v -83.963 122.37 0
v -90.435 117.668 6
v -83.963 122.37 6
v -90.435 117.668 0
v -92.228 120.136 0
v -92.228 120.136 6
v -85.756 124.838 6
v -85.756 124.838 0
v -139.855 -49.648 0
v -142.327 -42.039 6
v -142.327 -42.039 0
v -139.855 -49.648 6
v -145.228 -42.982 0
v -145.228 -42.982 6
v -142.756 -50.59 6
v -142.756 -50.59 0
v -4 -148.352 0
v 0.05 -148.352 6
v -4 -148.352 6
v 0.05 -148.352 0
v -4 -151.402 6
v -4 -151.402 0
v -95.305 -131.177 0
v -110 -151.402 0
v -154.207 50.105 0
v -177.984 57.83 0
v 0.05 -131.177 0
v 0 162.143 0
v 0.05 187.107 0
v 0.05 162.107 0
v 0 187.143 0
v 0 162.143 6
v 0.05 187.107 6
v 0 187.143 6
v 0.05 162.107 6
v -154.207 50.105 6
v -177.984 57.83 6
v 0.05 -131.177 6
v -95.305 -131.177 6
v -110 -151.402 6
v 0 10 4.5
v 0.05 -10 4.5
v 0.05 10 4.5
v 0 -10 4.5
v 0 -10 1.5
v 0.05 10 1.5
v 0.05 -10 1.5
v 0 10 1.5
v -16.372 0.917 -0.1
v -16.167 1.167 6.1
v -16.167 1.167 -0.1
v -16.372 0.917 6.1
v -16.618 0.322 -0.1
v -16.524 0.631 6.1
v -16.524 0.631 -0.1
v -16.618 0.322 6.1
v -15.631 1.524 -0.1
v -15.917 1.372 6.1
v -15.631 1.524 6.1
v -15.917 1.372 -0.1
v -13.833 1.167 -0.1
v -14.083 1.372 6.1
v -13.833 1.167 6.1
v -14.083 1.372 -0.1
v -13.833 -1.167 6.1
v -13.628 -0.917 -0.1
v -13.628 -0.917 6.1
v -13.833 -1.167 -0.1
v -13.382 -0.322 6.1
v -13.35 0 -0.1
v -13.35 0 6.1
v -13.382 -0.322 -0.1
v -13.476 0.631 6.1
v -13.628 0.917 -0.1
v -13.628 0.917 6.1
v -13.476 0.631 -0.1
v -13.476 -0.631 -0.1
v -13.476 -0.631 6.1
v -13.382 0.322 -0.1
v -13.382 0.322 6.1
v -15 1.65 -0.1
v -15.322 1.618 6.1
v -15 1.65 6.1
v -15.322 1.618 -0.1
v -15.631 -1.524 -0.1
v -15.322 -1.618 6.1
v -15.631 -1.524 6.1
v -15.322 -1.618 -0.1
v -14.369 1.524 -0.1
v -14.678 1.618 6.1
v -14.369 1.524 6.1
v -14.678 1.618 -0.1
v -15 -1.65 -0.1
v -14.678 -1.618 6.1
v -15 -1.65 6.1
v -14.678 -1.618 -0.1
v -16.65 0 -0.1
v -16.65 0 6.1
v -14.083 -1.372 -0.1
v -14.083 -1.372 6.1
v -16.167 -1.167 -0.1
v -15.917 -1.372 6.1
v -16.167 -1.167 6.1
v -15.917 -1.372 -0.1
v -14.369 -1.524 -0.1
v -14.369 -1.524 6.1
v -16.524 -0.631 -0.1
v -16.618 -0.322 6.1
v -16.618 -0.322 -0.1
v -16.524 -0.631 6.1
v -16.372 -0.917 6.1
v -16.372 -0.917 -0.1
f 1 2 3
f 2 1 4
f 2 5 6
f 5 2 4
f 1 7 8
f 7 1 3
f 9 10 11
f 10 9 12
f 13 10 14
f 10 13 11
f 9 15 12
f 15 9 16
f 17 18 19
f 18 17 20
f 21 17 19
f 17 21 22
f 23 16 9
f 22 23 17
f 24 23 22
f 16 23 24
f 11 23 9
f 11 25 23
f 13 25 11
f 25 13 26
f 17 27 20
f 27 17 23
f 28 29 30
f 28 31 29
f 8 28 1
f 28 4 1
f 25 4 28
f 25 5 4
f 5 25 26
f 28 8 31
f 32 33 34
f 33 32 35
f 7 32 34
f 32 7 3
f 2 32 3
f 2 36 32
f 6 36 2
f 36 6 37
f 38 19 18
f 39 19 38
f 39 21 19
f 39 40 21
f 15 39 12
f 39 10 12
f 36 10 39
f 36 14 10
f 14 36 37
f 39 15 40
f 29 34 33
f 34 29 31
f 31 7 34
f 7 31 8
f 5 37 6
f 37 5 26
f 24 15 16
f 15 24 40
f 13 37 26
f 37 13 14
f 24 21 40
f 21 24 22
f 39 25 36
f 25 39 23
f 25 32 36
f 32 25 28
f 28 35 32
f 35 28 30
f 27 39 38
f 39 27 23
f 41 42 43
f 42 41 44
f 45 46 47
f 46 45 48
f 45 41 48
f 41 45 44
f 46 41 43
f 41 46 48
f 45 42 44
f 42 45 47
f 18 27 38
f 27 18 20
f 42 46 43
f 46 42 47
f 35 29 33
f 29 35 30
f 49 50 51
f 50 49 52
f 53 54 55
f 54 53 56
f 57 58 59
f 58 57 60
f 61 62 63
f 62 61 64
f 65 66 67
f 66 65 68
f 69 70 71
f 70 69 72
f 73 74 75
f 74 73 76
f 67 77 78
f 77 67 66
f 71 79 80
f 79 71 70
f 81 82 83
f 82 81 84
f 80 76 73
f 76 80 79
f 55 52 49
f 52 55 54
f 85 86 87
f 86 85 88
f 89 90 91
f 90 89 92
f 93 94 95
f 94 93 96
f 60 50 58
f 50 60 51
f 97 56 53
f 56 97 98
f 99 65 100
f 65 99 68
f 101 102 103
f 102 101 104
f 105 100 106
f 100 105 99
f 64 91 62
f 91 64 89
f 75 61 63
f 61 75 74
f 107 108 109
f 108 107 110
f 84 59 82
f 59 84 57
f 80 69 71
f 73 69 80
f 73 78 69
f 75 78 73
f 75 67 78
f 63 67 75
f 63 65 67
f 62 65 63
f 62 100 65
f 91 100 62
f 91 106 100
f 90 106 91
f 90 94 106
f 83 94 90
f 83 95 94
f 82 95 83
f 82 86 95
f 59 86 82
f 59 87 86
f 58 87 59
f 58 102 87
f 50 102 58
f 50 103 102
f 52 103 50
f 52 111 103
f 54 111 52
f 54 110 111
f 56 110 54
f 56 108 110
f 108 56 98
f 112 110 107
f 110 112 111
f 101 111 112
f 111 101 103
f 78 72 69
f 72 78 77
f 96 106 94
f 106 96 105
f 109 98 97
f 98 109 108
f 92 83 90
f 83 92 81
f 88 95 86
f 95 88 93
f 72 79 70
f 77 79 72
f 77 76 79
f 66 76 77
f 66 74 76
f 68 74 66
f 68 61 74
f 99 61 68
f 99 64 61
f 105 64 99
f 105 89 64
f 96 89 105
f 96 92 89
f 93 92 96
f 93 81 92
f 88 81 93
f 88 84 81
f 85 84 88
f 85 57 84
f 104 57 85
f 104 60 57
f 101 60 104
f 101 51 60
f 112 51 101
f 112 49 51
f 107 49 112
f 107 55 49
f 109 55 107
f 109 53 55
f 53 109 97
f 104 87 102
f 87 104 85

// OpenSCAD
// face_frame_full.scad
// 1:1 正五边形面框，沿 90° 对称轴(y轴) 拆成 A/B 两半打印
// 客户原话：边长 220mm，外接圆直径 374mm，边框宽 25mm、厚 6mm
// 拼合：中央定位榫(5x20x3) + 2个M3通孔(Ø3.3，中心距分割线15mm、孔距30mm)
// 中央：Ø30 圆形插座凹位 + 5 个 Ø8x3 磁铁位(半径12mm、72°均布)
// 卡扣槽：5 个 8x15x3，外壁侧，72°均布
//
// 用法：
//   openscad -D 'is_left=1' -o face_frame_full_A.stl face_frame_full.scad
//   openscad -D 'is_left=0' -o face_frame_full_B.stl face_frame_full.scad

// ============ 参数（顶部可改） ============
a                = 220;   // 五边形边长 (mm) — 题面
border_width     = 25;    // 边框宽 (mm) — 题面
border_thickness = 6;     // 边框厚 (mm) — 题面

socket_d         = 30;    // 中央插座直径 (mm) — 题面
socket_depth     = 3;     // 中央插座凹位深 (mm) — 推导/常见结构
magnet_d         = 8;     // 磁铁位直径 (mm) — 题面
magnet_depth     = 3;     // 磁铁位深 (mm) — 题面
magnet_radius    = 12;    // 磁铁位环半径 (mm) — 题面

tenon_w          = 5;     // 定位榫宽（沿 X，越过分割线）— 常见结构
tenon_l          = 20;    // 定位榫长（沿 Y，分割线方向）— 常见结构
tenon_h          = 3;     // 定位榫高（沿 Z，框厚方向）— 常见结构

m3_hole_d        = 3.3;   // M3 通孔直径 (mm) — 常见结构
m3_offset        = 15;    // M3 孔中心距分割线 (mm) — 常见结构
m3_spacing       = 30;    // M3 两孔中心距 (mm) — 常见结构

slot_w           = 8;     // 卡扣槽宽 (mm) — 题面
slot_l           = 15;    // 卡扣槽长 (mm) — 题面
slot_d           = 3;     // 卡扣槽深 (mm) — 题面

// 派生：外接圆半径（题面 374/2 = 187）
R_circum = a / (2 * sin(36));

// 决定打印哪一半；render.sh 通过 -D 'is_left=1' 或 'is_left=0' 覆盖
is_left = 1;

$fn = 96;

// ============ 五边形几何 ============
// 顶点朝上（旋转 90° 使底边水平）；5 个顶点角 = 90 + i*72
function pentagon_verts(R) = [
    for (i = [0:4])
        let (a0 = 90 + i * 72)
        [ R * cos(a0), R * sin(a0) ]
];

// 沿法向向内偏移 d 后的五边形顶点（顶点处内角 108°，等距偏移后顶点
// 沿径向 -cos/sin 方向移动 d 即得到对应内五边形顶点）
function pentagon_verts_inward(R, d) = [
    for (i = [0:4])
        let (a0 = 90 + i * 72)
        [ (R * cos(a0)) - d * cos(a0),
          (R * sin(a0)) - d * sin(a0) ]
];

module pentagon_poly(verts) polygon(verts);

// 中空五边形面框 2D
module frame_2d() {
    difference() {
        pentagon_poly(pentagon_verts(R_circum));
        pentagon_poly(pentagon_verts_inward(R_circum, border_width));
    }
}

// ============ 完整面框（未切割） ============
module frame_full() {
    difference() {
        // 主体：中空五边形，厚 border_thickness
        linear_extrude(height = border_thickness)
            frame_2d();

        // 中央 Ø30 插座凹位：从顶面往下凹 socket_depth
        translate([0, 0, border_thickness - socket_depth])
            cylinder(d = socket_d, h = socket_depth + 0.1, $fn = 64);

        // 5 个磁铁位（Ø8x3，半径12mm，72°均布）
        for (i = [0:4]) {
            rotate([0, 0, i * 72])
                translate([magnet_radius, 0, border_thickness - magnet_depth])
                    cylinder(d = magnet_d, h = magnet_depth + 0.1, $fn = 32);
        }

        // 5 个卡扣槽（外壁侧，8x15x3）
        // 外五边形 5 条边的中点方向角 = 顶点角 + 36° = 126 + i*72
        // 边中点到圆心距 = R*cos(36°)
        // 槽沿径向朝中心凹入，长度沿边切向
        for (i = [0:4]) {
            edge_mid_angle = 126 + i * 72;
            edge_dist = R_circum * cos(36);
            rotate([0, 0, edge_mid_angle])
                translate([edge_dist - slot_d / 2, 0, border_thickness / 2])
                    cube([slot_d + 0.1, slot_w, slot_l], center = true);
        }
    }
}

// ============ M3 通孔（每个半件各 1 个） ============
// A 半孔心在 x=-m3_offset，B 半孔心在 x=+m3_offset
// 这样拼合后两孔相距 2*m3_offset = 30mm（= m3_spacing）
module m3_hole_half() {
    if (is_left)
        translate([-m3_offset, 0, -0.1])
            cylinder(d = m3_hole_d, h = border_thickness + 0.2, $fn = 32);
    else
        translate([m3_offset, 0, -0.1])
            cylinder(d = m3_hole_d, h = border_thickness + 0.2, $fn = 32);
}

// ============ 定位榫（A 半凸 / B 半凹） ============
// 都在分割线 x=0 附近、y∈[-10,+10] 居中
module tenon_features() {
    if (is_left) {
        // 凸榫：从 x=0 到 x=+tenon_w，跨入 B 半领地
        translate([tenon_w / 2, 0, border_thickness / 2])
            cube([tenon_w, tenon_l, tenon_h], center = true);
    } else {
        // 凹槽：从 x=0 到 x=+tenon_w，在 B 半内部挖空
        translate([tenon_w / 2, 0, border_thickness / 2])
            cube([tenon_w + 0.2, tenon_l + 0.2, tenon_h + 0.2], center = true);
    }
}

// ============ 半框（切割） ============
// A 半：x <= 0；B 半：x >= 0。切割盒尺寸足够大以覆盖整个框。
module half_model() {
    difference() {
        union() {
            frame_full();
            tenon_features();
            // 在 x=0 平面加一小薄片防止切割后底面缺料（无影响）
        }
        // 用大立方体切割
        if (is_left) {
            translate([0.05, -R_circum - 1, -0.1])
                cube([R_circum * 2 + 2, (R_circum + 1) * 2, border_thickness + 1]);
        } else {
            translate([-R_circum * 2 - 2 - 0.05, -R_circum - 1, -0.1])
                cube([R_circum * 2 + 2, (R_circum + 1) * 2, border_thickness + 1]);
        }
    }
    // M3 孔：在切割之后再打孔，保证孔完整存在于本半
    difference() {
        // 再加一点占位（差集用）
        m3_hole_half();
    }
}

// ============ 输出 ============
half_model();
